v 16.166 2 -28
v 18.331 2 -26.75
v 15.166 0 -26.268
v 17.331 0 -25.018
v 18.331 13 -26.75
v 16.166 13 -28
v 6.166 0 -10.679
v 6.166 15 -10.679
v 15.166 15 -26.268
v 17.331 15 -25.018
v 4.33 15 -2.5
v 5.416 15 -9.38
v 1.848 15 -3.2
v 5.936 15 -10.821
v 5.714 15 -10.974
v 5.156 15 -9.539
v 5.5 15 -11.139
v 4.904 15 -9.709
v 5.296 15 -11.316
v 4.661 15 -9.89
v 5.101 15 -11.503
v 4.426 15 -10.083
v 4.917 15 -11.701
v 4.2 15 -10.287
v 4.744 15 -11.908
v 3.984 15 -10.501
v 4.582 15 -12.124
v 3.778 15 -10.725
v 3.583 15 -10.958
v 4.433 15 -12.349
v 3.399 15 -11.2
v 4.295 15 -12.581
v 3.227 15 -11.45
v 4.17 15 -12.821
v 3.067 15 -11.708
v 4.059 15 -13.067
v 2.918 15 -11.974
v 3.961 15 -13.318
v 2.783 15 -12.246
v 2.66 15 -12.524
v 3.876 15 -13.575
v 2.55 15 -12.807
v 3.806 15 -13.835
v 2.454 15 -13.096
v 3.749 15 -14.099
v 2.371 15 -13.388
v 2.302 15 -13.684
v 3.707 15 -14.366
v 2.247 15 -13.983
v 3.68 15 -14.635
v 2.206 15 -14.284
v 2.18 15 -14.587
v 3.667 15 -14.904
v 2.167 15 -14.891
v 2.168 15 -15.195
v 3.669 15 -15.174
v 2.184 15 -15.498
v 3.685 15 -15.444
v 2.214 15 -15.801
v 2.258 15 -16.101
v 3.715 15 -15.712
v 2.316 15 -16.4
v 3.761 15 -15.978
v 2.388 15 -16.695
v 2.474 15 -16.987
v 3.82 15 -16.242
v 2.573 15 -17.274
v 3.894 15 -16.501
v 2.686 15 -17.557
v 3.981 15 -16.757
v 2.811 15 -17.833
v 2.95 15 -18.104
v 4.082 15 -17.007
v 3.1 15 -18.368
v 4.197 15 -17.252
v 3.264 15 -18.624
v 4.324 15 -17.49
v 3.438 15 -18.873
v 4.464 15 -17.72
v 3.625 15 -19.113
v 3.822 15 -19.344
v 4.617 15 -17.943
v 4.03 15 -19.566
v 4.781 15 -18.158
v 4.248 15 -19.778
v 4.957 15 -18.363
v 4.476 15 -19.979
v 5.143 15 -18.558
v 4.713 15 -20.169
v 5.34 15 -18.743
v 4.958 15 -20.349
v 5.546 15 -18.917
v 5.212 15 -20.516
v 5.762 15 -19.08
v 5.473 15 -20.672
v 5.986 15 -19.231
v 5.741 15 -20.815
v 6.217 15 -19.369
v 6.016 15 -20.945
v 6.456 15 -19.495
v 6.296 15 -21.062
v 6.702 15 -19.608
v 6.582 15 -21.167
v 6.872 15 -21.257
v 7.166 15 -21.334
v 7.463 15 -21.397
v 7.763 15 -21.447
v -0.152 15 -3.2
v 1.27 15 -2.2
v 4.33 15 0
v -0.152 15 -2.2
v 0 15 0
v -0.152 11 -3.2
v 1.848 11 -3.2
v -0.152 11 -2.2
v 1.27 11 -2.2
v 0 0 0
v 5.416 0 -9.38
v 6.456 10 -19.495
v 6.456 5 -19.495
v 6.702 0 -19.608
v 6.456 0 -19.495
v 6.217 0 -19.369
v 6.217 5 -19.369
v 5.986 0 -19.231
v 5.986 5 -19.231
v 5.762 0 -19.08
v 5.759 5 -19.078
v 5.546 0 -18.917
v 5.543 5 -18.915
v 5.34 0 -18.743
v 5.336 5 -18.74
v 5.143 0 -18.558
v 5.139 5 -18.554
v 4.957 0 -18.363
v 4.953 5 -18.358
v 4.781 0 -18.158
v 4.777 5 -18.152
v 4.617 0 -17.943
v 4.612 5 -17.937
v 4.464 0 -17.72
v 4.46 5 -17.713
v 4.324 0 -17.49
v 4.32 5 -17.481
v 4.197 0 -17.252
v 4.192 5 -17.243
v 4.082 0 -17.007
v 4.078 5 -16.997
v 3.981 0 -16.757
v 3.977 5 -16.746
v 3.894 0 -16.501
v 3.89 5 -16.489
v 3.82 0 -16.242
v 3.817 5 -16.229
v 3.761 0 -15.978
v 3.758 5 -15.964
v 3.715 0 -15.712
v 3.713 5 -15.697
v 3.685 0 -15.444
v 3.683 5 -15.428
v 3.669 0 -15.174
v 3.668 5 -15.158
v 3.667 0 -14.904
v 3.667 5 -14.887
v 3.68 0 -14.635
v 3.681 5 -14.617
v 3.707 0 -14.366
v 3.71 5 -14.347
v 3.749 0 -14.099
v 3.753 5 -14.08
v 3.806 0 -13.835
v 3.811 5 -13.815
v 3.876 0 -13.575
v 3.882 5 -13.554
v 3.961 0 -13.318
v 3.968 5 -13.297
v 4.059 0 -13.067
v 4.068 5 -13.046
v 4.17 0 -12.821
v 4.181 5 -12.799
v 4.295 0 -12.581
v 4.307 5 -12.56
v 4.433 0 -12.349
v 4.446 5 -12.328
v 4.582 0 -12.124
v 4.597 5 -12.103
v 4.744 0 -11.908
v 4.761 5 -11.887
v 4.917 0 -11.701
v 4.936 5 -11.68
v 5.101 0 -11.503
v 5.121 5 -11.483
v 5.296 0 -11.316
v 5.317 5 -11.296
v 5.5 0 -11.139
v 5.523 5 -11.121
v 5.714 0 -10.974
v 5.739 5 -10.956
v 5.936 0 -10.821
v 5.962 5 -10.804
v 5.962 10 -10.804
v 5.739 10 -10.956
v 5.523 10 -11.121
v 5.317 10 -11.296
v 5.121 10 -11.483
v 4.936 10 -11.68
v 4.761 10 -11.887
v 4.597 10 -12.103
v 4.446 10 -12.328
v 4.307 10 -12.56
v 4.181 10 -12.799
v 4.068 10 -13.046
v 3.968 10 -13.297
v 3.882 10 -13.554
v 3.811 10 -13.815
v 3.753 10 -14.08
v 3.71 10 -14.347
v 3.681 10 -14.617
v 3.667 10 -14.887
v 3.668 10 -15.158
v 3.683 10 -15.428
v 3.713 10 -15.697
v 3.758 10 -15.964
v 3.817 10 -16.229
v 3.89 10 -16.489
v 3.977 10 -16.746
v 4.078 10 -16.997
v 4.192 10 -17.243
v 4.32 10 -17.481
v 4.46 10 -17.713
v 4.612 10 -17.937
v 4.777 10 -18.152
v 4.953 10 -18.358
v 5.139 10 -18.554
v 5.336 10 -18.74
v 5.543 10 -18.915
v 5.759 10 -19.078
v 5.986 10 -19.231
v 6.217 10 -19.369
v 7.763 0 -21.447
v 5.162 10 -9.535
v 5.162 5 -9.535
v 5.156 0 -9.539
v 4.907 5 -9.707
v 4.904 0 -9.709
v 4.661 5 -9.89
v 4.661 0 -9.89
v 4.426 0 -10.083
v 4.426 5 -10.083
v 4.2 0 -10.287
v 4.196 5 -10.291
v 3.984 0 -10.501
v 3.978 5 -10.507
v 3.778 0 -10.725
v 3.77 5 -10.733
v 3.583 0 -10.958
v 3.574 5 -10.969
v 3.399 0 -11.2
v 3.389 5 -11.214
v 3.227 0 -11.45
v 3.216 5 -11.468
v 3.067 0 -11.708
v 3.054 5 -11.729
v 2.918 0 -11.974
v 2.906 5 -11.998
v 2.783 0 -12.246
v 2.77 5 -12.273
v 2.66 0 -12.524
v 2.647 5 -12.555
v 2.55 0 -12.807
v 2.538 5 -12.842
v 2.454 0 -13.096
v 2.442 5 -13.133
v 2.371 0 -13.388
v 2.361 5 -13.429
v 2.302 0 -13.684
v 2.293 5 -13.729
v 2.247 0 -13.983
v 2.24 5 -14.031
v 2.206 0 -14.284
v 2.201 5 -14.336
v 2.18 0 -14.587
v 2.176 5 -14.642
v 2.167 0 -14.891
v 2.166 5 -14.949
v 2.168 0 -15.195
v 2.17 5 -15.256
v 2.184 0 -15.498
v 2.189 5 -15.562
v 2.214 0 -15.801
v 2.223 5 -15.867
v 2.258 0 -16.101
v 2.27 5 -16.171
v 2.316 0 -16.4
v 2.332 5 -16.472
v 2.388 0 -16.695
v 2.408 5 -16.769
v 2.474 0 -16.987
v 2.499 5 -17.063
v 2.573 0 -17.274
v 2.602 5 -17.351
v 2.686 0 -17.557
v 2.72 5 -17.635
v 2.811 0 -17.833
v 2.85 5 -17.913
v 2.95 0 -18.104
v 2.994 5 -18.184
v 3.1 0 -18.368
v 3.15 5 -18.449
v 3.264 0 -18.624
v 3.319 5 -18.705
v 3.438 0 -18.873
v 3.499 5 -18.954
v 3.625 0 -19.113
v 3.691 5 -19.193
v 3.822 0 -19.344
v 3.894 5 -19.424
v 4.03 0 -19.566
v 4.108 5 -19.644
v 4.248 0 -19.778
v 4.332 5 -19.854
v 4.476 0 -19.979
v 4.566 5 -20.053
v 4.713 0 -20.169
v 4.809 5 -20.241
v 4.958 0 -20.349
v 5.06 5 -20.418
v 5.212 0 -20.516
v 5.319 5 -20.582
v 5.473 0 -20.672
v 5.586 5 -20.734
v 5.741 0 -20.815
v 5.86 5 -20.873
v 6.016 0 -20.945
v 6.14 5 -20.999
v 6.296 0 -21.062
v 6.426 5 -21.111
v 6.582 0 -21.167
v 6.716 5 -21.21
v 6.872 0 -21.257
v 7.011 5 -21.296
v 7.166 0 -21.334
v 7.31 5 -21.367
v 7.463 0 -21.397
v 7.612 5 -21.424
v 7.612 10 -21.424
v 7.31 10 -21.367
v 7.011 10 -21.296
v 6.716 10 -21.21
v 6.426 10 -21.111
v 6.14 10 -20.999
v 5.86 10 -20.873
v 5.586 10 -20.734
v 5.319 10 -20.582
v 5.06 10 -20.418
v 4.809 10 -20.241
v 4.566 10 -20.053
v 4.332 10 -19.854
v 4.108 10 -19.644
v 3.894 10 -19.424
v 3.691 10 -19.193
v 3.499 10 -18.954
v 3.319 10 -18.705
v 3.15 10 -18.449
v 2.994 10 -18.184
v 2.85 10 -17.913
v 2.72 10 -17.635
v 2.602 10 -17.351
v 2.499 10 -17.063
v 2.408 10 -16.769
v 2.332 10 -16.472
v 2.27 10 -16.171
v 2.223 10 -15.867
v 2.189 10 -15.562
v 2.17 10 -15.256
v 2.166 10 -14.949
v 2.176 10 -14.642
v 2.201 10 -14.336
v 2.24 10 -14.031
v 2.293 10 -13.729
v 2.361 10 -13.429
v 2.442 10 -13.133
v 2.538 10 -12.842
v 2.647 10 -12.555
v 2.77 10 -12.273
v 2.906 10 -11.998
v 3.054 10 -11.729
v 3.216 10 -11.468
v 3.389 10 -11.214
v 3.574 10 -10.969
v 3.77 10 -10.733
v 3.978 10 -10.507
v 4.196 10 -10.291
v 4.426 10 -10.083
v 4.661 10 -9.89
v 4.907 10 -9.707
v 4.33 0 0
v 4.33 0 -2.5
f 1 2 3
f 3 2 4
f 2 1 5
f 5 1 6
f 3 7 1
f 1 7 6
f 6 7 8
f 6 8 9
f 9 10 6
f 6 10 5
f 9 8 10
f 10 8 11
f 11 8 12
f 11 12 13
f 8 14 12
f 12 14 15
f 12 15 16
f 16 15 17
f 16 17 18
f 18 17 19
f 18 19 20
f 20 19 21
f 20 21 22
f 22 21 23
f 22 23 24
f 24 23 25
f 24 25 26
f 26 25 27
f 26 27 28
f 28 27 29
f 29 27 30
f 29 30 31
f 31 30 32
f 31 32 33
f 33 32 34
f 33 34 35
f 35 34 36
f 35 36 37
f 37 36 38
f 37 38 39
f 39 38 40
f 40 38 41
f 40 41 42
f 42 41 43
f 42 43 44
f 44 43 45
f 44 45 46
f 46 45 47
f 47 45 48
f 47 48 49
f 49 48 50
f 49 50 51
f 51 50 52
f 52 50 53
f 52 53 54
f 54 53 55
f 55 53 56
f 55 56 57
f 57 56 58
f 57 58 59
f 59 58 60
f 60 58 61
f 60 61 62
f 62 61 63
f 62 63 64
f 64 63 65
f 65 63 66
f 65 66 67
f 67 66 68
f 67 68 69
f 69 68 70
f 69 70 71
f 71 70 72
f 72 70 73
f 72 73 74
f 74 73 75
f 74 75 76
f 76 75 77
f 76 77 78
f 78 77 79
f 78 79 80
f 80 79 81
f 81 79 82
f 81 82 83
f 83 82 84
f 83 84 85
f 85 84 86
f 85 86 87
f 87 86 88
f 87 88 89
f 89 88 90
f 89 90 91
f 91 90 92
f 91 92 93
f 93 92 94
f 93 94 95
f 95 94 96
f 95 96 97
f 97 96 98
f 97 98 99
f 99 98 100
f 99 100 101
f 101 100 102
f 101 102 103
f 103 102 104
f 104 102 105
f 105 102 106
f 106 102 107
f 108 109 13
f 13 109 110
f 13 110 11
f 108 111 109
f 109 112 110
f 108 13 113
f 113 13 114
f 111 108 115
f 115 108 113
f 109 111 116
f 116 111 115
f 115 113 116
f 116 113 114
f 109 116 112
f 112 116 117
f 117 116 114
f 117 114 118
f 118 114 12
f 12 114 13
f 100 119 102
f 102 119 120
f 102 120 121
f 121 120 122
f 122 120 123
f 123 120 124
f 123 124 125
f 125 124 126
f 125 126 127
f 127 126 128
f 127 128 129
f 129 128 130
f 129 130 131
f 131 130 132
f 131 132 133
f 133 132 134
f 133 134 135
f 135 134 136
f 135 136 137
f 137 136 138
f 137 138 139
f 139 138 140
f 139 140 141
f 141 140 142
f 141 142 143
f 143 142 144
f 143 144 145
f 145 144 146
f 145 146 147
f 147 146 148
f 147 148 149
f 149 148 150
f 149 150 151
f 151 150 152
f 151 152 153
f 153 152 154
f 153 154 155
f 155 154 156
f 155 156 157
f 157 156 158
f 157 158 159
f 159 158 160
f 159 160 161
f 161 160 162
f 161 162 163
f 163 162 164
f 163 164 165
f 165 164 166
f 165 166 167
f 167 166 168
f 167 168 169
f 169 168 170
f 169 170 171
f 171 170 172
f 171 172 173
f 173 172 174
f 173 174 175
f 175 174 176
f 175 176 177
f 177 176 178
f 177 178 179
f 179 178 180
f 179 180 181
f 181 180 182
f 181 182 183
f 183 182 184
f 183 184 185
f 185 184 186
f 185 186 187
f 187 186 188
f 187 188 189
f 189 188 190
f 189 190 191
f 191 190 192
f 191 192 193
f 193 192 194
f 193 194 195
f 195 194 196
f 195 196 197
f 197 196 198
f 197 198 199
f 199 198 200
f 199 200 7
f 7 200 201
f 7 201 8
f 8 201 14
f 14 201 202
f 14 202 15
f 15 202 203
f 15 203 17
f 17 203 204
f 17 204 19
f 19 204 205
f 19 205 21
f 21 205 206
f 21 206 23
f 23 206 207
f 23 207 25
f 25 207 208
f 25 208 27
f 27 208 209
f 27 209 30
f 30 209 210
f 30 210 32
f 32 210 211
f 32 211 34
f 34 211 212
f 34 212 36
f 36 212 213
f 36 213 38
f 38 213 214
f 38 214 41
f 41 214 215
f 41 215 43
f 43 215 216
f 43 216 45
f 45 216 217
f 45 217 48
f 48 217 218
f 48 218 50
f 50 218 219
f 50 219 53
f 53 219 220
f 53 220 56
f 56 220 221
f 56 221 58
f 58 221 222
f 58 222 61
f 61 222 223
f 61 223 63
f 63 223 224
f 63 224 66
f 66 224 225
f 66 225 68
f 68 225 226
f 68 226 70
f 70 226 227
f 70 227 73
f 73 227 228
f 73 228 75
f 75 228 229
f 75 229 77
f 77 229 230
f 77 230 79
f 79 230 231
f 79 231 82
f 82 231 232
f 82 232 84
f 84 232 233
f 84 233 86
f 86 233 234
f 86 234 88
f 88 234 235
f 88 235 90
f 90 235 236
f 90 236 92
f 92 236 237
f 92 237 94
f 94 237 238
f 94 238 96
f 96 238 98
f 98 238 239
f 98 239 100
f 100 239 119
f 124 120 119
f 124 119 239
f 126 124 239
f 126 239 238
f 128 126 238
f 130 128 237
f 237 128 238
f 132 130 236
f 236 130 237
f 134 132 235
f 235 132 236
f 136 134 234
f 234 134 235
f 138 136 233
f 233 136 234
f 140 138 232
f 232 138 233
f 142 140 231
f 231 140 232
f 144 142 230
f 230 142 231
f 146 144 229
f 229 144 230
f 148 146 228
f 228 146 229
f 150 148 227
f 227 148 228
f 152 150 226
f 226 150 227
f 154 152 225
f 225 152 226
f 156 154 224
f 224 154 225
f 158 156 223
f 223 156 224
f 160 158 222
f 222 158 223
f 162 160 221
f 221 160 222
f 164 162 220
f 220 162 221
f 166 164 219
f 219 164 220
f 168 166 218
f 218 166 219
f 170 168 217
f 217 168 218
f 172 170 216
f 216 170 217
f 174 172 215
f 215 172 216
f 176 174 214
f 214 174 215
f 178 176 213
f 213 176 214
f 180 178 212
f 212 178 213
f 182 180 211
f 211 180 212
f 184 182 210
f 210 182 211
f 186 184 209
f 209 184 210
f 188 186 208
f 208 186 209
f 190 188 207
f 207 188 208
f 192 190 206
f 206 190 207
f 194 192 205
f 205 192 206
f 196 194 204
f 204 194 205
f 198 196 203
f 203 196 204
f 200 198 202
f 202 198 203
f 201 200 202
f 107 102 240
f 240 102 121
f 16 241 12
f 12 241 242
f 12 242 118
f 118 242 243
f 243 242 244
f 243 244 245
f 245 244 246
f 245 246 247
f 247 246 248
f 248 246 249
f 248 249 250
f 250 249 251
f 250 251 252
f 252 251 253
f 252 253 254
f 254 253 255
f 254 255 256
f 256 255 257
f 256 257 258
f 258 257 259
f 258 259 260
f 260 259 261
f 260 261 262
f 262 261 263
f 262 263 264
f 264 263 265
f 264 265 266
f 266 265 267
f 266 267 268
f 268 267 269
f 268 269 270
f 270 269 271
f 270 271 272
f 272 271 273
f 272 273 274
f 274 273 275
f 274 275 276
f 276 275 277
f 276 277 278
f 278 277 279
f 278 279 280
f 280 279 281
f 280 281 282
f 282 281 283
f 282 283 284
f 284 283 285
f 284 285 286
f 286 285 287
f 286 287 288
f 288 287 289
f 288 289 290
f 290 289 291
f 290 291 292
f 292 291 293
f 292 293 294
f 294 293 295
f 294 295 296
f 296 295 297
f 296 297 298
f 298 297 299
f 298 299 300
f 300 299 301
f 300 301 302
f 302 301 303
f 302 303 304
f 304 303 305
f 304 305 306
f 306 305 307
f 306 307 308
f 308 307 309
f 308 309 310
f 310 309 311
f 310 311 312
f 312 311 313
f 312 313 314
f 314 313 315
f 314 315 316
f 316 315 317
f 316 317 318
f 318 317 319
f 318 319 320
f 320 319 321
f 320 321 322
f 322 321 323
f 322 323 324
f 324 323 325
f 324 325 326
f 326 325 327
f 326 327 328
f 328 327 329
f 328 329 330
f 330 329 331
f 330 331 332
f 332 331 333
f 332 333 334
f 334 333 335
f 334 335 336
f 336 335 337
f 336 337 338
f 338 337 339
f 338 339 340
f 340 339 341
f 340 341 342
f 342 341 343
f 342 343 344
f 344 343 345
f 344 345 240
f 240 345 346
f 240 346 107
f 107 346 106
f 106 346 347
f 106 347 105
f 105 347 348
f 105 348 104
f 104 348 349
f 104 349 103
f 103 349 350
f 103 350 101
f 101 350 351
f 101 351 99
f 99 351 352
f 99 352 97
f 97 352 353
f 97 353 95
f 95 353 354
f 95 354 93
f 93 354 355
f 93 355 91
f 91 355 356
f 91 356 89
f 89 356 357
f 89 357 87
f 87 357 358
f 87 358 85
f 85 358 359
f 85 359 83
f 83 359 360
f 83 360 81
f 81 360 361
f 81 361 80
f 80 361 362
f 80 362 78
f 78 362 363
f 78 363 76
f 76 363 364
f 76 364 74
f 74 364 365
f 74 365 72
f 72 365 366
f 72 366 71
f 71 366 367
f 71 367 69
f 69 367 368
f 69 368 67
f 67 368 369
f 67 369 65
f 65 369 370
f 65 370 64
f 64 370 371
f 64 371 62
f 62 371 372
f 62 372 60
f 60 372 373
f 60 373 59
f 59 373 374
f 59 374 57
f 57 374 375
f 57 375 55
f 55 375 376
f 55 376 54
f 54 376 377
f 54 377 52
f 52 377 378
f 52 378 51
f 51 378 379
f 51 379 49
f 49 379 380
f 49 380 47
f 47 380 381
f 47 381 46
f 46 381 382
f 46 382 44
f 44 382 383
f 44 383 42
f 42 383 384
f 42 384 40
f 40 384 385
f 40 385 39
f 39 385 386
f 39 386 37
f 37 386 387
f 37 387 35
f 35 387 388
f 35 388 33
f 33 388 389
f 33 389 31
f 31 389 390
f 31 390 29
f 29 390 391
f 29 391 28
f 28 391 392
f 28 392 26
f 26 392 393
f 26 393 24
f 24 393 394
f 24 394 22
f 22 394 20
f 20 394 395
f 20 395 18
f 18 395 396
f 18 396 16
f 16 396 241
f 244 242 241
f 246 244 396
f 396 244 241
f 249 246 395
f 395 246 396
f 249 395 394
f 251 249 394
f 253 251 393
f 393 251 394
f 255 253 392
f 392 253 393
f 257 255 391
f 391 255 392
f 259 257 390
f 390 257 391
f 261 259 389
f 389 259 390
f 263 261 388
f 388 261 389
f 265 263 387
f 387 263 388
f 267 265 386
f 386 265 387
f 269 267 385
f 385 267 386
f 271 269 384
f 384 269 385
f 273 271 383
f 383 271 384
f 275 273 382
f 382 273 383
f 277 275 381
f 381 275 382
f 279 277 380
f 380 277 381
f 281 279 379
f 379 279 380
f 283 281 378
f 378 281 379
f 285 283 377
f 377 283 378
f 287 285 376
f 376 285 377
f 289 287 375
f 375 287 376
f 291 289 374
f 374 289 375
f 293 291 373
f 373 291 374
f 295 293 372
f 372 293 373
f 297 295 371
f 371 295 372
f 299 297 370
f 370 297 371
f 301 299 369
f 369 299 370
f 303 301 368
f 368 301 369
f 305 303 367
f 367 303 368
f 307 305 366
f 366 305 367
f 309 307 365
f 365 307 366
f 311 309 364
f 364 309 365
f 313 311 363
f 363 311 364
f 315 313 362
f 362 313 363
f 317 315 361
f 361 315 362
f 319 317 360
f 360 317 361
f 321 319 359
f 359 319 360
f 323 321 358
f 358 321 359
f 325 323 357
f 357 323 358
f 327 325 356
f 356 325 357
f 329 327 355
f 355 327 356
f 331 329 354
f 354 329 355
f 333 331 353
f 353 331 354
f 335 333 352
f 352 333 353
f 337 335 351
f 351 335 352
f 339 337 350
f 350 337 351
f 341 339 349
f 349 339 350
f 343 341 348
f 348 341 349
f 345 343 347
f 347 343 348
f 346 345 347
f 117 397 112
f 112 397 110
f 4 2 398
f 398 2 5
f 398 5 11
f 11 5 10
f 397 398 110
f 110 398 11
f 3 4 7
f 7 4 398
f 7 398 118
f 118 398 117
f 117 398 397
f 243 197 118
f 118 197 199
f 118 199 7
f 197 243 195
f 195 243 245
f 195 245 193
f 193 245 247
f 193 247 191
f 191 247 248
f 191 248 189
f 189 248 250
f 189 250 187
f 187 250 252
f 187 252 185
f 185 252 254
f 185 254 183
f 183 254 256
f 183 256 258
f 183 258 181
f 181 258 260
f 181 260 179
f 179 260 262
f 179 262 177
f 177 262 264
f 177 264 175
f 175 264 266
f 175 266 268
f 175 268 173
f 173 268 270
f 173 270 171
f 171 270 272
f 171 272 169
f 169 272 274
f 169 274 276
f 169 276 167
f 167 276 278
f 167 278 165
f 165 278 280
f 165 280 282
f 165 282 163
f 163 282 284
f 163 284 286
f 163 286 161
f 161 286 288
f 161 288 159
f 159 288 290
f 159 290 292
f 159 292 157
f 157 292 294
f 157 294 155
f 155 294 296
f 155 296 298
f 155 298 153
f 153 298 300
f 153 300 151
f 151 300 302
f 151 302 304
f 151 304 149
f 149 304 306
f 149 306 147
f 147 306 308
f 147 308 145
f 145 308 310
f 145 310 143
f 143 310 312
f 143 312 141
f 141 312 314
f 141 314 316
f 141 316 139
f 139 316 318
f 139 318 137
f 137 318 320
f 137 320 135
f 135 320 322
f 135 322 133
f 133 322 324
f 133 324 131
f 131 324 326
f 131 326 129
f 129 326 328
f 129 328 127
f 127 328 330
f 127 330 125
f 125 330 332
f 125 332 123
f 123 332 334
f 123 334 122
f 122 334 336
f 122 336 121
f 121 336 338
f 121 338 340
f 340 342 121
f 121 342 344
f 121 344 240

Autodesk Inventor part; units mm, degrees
ref_plane "YZ Plane" through (0, 0, 0) normal (1, 0, 0) x (0, 1, 0)
ref_plane "XZ Plane" through (0, 0, 0) normal (0, 1, 0) x (-1, 0, 0)
ref_plane "XY Plane" through (0, 0, 0) normal (0, 0, 1) x (1, 0, 0)
sketch "Sketch22" plane through (0, 0, 0) normal (0, 1, 0) x (-1, 0, 0)
  line L0 (0, 0) -> (-4.3301, 0)
  line L1 (-4.3301, 0) -> (-4.3301, -2.5)
  line L2 (-4.3301, -2.5) -> (-18.3309, -26.75)
  line L3 (-18.3309, -26.75) -> (-16.1658, -28)
  line L4 (-16.1658, -28) -> (0, 0)
  dimension "d180" = 60
  dimension "d182" = 2.5
  dimension "d184" = 2.5
  dimension "d185" = 28
extrude "Extrusion22" add sketch "Sketch22" along normal blind 15
sketch "Sketch23" plane through (0, 15, 0) normal (0, 1, 0) x (1, 0, 0)
  line L0 (16.1658, 28) -> (0, 0) projected
  arc A0 (6.7017, 19.6077) -> (6.1658, 10.6795) centre (8.6658, 15.0096) ccw
  arc A1 (7.7634, 21.4467) -> (5.4158, 9.3805) centre (8.6658, 15.0096) ccw
  line L1 (18.3309, 26.75) -> (16.1658, 28) projected
  line L2 (6.7017, 19.6077) -> (7.7634, 21.4467)
  dimension "d188" = 10
  dimension "d189" = 1.5
  dimension "d190" = 15
  dimension "d191" = 4
extrude "Extrusion23" add sketch "Sketch23" against normal blind 15
sketch "Sketch24" plane through (0, 15, 0) normal (0, 1, 0) x (1, 0, 0)
  line L0 (4.3301, 0) -> (4.3301, 2.5) projected
  line L1 (4.3301, 2.2) -> (-0.1525, 2.2)
  line L2 (0, 0) -> (4.3301, 0) projected
  line L3 (-0.1525, 2.2) -> (-0.1525, 3.2)
  line L4 (-0.1525, 3.2) -> (1.8475, 3.2)
  line L5 (1.8475, 3.2) -> (1.2702, 2.2)
  line L6 (5.4158, 9.3805) -> (0, 0) projected
  dimension "d194" = 2.2
  dimension "d195" = 2
  dimension "d196" = 1
extrude "Extrusion24" add sketch "Sketch24" against normal blind 4 contours L1 L3 L4 L5
chamfer "Chamfer6" distance 2 angle 45 2 edges at (17.2483, 15, -27.375) (17.2483, 0, -27.375)
properties part number "part_v3-4_3"
